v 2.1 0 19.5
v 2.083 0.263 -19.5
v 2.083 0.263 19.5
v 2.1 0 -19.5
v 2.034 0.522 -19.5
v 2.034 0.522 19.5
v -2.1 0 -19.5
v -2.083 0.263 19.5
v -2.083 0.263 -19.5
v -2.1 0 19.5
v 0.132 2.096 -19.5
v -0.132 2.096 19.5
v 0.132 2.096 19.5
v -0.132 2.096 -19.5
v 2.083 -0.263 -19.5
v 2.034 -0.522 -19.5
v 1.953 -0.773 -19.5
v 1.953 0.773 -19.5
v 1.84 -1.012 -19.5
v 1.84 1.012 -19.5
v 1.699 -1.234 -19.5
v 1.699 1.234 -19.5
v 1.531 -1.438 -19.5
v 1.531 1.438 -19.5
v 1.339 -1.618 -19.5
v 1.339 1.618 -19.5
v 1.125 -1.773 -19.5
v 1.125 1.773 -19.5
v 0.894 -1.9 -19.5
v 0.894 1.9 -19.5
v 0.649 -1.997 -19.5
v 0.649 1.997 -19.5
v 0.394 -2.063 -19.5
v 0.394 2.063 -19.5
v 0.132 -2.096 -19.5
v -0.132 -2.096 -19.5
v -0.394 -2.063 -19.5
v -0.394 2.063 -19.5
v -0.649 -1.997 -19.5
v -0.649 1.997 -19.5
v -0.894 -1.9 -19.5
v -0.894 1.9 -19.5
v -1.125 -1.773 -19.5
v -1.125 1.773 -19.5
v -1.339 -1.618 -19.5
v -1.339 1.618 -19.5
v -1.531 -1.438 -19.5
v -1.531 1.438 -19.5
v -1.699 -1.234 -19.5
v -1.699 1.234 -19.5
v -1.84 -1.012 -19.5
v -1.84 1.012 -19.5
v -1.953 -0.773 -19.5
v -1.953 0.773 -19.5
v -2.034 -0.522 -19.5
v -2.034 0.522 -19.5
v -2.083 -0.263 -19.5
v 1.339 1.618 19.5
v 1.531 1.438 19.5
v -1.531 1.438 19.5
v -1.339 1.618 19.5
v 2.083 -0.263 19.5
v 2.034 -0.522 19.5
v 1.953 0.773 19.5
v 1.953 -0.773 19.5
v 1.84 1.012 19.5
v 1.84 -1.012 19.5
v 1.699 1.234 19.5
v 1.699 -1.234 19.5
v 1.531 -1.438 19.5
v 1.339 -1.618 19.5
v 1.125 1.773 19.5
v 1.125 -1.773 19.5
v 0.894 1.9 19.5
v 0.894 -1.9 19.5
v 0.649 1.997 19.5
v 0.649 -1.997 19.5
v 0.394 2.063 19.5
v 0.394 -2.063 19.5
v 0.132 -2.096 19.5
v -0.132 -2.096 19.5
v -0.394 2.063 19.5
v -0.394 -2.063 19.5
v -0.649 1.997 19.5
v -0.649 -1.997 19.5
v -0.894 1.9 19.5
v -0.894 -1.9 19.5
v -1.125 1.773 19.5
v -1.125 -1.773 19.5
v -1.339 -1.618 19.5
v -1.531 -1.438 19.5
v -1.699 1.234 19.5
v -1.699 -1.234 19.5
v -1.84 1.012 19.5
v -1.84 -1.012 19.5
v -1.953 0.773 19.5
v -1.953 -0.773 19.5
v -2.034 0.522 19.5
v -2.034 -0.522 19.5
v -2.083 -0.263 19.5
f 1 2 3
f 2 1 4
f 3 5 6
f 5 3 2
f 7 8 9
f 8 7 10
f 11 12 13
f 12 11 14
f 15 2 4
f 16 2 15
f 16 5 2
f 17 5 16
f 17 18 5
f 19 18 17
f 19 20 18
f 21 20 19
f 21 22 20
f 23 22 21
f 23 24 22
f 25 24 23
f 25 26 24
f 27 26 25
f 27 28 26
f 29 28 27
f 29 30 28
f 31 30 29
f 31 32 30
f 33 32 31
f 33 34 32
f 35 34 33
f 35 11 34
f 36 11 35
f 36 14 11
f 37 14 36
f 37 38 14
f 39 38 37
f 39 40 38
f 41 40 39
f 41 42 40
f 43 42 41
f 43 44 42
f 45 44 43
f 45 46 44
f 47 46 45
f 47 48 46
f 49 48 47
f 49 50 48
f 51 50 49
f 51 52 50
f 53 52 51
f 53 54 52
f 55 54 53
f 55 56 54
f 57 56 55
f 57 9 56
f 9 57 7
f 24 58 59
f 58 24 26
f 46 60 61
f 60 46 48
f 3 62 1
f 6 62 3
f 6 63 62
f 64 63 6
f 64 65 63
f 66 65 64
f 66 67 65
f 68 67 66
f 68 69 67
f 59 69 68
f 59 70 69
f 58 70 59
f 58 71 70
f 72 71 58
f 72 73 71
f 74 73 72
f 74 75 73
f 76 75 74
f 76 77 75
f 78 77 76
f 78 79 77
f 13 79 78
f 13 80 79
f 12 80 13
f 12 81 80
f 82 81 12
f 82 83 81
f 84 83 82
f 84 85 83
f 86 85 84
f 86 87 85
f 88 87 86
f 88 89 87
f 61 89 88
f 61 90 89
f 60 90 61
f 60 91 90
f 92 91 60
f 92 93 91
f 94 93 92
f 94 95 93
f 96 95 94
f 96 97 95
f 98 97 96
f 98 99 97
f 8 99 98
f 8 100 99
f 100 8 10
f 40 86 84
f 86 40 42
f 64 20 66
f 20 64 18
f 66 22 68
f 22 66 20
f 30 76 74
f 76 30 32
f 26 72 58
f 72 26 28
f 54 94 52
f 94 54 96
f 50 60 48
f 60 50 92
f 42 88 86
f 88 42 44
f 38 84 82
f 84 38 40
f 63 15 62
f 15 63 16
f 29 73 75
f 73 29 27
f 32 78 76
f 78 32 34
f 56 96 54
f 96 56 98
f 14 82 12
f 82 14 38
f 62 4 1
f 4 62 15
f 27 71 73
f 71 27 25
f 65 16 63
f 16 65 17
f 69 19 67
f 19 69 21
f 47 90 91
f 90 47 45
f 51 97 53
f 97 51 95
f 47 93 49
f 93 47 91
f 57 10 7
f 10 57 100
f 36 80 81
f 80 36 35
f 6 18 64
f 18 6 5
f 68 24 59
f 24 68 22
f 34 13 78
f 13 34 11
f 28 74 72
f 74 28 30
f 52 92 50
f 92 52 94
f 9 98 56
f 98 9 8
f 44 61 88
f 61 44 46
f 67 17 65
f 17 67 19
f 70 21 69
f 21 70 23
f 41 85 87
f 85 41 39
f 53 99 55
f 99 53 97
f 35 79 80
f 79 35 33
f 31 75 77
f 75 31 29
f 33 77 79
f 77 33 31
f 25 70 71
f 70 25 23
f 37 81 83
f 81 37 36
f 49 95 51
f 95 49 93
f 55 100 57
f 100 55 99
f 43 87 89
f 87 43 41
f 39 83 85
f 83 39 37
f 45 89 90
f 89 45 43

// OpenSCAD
$fn = 50;


difference() {
	union() {
		translate(v = [0, 0, -19.5000000000]) {
			cylinder(h = 39, r = 2.1000000000);
		}
	}
	union() {
		translate(v = [0, 0, -100.0000000000]) {
			cylinder(h = 200, r = 0);
		}
	}
}
